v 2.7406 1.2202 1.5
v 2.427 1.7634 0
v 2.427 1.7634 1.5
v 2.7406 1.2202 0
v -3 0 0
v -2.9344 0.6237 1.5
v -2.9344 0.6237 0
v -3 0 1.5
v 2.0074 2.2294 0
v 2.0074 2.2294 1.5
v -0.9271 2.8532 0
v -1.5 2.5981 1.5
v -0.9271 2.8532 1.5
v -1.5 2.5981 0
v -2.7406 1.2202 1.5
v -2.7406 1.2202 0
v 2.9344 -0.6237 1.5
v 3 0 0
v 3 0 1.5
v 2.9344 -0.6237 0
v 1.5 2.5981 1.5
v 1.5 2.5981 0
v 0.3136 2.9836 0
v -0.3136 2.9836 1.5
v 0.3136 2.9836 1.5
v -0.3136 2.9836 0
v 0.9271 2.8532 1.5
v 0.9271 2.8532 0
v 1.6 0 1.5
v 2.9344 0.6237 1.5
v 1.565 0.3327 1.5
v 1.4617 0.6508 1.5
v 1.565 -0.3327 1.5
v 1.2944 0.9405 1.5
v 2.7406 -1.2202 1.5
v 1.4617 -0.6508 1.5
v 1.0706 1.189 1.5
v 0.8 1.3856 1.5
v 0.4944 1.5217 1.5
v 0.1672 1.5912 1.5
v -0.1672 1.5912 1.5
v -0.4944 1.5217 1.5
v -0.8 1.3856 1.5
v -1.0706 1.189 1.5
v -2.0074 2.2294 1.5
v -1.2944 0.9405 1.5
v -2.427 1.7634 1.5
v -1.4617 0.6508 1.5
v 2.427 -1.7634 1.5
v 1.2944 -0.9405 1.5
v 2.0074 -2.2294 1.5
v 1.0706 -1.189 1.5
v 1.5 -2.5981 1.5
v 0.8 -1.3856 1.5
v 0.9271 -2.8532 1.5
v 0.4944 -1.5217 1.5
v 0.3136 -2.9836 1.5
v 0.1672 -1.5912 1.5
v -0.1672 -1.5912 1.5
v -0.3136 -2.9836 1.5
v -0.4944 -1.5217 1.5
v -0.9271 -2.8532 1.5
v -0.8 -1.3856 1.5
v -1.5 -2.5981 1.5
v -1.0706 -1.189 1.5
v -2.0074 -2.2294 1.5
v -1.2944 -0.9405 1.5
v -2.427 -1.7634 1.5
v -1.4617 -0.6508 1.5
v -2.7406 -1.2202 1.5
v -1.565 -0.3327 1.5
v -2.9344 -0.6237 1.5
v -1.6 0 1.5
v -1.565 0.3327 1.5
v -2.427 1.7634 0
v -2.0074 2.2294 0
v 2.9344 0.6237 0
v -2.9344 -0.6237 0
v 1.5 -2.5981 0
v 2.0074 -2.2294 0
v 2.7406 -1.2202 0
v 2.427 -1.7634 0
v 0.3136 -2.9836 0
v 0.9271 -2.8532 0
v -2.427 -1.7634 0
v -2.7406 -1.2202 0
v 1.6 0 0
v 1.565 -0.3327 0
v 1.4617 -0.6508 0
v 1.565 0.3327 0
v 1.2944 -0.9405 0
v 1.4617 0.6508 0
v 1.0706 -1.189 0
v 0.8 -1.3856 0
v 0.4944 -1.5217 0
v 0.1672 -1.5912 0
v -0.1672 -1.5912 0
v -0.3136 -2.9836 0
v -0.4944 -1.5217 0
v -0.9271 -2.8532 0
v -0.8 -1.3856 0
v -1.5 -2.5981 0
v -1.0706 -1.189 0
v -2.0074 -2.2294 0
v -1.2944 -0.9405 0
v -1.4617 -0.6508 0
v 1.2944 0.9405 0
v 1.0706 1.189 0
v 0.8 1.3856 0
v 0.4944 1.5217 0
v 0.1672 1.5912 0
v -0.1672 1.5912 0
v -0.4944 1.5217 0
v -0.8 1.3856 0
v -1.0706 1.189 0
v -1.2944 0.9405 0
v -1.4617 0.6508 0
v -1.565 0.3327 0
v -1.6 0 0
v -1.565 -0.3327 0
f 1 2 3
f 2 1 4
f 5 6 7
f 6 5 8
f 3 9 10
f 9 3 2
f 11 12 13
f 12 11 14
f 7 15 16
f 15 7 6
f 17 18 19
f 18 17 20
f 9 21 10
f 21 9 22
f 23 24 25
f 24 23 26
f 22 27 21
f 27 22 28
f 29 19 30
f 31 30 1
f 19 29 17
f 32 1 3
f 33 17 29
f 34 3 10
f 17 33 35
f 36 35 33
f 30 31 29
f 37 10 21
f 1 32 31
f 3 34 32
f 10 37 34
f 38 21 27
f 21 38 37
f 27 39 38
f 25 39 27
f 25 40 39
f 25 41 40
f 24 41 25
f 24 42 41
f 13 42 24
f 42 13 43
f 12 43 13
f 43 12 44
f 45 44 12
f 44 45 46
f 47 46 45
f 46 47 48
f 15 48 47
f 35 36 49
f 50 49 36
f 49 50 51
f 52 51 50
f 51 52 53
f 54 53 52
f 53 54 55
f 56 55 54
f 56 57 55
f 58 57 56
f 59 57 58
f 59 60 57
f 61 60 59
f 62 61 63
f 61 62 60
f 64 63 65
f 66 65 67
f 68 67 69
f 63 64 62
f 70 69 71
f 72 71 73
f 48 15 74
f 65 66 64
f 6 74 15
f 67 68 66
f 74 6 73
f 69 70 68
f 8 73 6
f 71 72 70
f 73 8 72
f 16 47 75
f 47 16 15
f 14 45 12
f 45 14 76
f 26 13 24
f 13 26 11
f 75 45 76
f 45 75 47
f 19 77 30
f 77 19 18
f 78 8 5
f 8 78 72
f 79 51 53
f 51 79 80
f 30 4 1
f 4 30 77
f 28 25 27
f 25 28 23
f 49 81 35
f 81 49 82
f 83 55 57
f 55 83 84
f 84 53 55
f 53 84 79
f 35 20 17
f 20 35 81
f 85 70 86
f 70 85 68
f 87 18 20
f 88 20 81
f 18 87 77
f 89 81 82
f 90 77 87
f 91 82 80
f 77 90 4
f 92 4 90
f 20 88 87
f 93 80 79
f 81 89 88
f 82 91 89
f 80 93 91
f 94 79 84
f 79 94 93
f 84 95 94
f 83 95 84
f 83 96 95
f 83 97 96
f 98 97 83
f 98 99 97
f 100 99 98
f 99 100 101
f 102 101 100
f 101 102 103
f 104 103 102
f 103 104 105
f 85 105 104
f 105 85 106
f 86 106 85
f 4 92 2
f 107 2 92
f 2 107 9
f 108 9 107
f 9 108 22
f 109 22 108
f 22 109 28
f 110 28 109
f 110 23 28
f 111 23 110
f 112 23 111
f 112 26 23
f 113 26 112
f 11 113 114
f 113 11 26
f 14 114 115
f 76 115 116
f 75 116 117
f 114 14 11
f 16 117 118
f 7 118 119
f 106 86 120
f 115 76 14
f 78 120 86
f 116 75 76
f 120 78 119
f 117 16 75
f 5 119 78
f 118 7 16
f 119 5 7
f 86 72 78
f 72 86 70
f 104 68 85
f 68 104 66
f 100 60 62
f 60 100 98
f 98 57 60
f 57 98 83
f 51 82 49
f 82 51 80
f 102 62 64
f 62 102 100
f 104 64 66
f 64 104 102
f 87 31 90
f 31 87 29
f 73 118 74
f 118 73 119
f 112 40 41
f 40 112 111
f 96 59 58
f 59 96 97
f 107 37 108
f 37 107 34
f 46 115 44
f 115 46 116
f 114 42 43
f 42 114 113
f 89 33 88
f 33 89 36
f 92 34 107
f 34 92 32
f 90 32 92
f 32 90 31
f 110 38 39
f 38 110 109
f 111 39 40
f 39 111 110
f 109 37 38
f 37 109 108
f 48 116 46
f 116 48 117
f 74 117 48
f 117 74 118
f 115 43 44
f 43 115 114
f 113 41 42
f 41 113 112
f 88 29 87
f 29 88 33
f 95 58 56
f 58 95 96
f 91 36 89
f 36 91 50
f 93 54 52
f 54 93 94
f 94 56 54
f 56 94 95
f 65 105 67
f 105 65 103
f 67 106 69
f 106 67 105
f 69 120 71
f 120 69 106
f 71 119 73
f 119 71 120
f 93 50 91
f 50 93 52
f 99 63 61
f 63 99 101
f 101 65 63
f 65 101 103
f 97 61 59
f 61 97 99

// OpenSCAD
$fn=30;
difference() {
    cylinder(d=6,h=1.5);
    cylinder(d=3.2, h=4, center=true);
}
